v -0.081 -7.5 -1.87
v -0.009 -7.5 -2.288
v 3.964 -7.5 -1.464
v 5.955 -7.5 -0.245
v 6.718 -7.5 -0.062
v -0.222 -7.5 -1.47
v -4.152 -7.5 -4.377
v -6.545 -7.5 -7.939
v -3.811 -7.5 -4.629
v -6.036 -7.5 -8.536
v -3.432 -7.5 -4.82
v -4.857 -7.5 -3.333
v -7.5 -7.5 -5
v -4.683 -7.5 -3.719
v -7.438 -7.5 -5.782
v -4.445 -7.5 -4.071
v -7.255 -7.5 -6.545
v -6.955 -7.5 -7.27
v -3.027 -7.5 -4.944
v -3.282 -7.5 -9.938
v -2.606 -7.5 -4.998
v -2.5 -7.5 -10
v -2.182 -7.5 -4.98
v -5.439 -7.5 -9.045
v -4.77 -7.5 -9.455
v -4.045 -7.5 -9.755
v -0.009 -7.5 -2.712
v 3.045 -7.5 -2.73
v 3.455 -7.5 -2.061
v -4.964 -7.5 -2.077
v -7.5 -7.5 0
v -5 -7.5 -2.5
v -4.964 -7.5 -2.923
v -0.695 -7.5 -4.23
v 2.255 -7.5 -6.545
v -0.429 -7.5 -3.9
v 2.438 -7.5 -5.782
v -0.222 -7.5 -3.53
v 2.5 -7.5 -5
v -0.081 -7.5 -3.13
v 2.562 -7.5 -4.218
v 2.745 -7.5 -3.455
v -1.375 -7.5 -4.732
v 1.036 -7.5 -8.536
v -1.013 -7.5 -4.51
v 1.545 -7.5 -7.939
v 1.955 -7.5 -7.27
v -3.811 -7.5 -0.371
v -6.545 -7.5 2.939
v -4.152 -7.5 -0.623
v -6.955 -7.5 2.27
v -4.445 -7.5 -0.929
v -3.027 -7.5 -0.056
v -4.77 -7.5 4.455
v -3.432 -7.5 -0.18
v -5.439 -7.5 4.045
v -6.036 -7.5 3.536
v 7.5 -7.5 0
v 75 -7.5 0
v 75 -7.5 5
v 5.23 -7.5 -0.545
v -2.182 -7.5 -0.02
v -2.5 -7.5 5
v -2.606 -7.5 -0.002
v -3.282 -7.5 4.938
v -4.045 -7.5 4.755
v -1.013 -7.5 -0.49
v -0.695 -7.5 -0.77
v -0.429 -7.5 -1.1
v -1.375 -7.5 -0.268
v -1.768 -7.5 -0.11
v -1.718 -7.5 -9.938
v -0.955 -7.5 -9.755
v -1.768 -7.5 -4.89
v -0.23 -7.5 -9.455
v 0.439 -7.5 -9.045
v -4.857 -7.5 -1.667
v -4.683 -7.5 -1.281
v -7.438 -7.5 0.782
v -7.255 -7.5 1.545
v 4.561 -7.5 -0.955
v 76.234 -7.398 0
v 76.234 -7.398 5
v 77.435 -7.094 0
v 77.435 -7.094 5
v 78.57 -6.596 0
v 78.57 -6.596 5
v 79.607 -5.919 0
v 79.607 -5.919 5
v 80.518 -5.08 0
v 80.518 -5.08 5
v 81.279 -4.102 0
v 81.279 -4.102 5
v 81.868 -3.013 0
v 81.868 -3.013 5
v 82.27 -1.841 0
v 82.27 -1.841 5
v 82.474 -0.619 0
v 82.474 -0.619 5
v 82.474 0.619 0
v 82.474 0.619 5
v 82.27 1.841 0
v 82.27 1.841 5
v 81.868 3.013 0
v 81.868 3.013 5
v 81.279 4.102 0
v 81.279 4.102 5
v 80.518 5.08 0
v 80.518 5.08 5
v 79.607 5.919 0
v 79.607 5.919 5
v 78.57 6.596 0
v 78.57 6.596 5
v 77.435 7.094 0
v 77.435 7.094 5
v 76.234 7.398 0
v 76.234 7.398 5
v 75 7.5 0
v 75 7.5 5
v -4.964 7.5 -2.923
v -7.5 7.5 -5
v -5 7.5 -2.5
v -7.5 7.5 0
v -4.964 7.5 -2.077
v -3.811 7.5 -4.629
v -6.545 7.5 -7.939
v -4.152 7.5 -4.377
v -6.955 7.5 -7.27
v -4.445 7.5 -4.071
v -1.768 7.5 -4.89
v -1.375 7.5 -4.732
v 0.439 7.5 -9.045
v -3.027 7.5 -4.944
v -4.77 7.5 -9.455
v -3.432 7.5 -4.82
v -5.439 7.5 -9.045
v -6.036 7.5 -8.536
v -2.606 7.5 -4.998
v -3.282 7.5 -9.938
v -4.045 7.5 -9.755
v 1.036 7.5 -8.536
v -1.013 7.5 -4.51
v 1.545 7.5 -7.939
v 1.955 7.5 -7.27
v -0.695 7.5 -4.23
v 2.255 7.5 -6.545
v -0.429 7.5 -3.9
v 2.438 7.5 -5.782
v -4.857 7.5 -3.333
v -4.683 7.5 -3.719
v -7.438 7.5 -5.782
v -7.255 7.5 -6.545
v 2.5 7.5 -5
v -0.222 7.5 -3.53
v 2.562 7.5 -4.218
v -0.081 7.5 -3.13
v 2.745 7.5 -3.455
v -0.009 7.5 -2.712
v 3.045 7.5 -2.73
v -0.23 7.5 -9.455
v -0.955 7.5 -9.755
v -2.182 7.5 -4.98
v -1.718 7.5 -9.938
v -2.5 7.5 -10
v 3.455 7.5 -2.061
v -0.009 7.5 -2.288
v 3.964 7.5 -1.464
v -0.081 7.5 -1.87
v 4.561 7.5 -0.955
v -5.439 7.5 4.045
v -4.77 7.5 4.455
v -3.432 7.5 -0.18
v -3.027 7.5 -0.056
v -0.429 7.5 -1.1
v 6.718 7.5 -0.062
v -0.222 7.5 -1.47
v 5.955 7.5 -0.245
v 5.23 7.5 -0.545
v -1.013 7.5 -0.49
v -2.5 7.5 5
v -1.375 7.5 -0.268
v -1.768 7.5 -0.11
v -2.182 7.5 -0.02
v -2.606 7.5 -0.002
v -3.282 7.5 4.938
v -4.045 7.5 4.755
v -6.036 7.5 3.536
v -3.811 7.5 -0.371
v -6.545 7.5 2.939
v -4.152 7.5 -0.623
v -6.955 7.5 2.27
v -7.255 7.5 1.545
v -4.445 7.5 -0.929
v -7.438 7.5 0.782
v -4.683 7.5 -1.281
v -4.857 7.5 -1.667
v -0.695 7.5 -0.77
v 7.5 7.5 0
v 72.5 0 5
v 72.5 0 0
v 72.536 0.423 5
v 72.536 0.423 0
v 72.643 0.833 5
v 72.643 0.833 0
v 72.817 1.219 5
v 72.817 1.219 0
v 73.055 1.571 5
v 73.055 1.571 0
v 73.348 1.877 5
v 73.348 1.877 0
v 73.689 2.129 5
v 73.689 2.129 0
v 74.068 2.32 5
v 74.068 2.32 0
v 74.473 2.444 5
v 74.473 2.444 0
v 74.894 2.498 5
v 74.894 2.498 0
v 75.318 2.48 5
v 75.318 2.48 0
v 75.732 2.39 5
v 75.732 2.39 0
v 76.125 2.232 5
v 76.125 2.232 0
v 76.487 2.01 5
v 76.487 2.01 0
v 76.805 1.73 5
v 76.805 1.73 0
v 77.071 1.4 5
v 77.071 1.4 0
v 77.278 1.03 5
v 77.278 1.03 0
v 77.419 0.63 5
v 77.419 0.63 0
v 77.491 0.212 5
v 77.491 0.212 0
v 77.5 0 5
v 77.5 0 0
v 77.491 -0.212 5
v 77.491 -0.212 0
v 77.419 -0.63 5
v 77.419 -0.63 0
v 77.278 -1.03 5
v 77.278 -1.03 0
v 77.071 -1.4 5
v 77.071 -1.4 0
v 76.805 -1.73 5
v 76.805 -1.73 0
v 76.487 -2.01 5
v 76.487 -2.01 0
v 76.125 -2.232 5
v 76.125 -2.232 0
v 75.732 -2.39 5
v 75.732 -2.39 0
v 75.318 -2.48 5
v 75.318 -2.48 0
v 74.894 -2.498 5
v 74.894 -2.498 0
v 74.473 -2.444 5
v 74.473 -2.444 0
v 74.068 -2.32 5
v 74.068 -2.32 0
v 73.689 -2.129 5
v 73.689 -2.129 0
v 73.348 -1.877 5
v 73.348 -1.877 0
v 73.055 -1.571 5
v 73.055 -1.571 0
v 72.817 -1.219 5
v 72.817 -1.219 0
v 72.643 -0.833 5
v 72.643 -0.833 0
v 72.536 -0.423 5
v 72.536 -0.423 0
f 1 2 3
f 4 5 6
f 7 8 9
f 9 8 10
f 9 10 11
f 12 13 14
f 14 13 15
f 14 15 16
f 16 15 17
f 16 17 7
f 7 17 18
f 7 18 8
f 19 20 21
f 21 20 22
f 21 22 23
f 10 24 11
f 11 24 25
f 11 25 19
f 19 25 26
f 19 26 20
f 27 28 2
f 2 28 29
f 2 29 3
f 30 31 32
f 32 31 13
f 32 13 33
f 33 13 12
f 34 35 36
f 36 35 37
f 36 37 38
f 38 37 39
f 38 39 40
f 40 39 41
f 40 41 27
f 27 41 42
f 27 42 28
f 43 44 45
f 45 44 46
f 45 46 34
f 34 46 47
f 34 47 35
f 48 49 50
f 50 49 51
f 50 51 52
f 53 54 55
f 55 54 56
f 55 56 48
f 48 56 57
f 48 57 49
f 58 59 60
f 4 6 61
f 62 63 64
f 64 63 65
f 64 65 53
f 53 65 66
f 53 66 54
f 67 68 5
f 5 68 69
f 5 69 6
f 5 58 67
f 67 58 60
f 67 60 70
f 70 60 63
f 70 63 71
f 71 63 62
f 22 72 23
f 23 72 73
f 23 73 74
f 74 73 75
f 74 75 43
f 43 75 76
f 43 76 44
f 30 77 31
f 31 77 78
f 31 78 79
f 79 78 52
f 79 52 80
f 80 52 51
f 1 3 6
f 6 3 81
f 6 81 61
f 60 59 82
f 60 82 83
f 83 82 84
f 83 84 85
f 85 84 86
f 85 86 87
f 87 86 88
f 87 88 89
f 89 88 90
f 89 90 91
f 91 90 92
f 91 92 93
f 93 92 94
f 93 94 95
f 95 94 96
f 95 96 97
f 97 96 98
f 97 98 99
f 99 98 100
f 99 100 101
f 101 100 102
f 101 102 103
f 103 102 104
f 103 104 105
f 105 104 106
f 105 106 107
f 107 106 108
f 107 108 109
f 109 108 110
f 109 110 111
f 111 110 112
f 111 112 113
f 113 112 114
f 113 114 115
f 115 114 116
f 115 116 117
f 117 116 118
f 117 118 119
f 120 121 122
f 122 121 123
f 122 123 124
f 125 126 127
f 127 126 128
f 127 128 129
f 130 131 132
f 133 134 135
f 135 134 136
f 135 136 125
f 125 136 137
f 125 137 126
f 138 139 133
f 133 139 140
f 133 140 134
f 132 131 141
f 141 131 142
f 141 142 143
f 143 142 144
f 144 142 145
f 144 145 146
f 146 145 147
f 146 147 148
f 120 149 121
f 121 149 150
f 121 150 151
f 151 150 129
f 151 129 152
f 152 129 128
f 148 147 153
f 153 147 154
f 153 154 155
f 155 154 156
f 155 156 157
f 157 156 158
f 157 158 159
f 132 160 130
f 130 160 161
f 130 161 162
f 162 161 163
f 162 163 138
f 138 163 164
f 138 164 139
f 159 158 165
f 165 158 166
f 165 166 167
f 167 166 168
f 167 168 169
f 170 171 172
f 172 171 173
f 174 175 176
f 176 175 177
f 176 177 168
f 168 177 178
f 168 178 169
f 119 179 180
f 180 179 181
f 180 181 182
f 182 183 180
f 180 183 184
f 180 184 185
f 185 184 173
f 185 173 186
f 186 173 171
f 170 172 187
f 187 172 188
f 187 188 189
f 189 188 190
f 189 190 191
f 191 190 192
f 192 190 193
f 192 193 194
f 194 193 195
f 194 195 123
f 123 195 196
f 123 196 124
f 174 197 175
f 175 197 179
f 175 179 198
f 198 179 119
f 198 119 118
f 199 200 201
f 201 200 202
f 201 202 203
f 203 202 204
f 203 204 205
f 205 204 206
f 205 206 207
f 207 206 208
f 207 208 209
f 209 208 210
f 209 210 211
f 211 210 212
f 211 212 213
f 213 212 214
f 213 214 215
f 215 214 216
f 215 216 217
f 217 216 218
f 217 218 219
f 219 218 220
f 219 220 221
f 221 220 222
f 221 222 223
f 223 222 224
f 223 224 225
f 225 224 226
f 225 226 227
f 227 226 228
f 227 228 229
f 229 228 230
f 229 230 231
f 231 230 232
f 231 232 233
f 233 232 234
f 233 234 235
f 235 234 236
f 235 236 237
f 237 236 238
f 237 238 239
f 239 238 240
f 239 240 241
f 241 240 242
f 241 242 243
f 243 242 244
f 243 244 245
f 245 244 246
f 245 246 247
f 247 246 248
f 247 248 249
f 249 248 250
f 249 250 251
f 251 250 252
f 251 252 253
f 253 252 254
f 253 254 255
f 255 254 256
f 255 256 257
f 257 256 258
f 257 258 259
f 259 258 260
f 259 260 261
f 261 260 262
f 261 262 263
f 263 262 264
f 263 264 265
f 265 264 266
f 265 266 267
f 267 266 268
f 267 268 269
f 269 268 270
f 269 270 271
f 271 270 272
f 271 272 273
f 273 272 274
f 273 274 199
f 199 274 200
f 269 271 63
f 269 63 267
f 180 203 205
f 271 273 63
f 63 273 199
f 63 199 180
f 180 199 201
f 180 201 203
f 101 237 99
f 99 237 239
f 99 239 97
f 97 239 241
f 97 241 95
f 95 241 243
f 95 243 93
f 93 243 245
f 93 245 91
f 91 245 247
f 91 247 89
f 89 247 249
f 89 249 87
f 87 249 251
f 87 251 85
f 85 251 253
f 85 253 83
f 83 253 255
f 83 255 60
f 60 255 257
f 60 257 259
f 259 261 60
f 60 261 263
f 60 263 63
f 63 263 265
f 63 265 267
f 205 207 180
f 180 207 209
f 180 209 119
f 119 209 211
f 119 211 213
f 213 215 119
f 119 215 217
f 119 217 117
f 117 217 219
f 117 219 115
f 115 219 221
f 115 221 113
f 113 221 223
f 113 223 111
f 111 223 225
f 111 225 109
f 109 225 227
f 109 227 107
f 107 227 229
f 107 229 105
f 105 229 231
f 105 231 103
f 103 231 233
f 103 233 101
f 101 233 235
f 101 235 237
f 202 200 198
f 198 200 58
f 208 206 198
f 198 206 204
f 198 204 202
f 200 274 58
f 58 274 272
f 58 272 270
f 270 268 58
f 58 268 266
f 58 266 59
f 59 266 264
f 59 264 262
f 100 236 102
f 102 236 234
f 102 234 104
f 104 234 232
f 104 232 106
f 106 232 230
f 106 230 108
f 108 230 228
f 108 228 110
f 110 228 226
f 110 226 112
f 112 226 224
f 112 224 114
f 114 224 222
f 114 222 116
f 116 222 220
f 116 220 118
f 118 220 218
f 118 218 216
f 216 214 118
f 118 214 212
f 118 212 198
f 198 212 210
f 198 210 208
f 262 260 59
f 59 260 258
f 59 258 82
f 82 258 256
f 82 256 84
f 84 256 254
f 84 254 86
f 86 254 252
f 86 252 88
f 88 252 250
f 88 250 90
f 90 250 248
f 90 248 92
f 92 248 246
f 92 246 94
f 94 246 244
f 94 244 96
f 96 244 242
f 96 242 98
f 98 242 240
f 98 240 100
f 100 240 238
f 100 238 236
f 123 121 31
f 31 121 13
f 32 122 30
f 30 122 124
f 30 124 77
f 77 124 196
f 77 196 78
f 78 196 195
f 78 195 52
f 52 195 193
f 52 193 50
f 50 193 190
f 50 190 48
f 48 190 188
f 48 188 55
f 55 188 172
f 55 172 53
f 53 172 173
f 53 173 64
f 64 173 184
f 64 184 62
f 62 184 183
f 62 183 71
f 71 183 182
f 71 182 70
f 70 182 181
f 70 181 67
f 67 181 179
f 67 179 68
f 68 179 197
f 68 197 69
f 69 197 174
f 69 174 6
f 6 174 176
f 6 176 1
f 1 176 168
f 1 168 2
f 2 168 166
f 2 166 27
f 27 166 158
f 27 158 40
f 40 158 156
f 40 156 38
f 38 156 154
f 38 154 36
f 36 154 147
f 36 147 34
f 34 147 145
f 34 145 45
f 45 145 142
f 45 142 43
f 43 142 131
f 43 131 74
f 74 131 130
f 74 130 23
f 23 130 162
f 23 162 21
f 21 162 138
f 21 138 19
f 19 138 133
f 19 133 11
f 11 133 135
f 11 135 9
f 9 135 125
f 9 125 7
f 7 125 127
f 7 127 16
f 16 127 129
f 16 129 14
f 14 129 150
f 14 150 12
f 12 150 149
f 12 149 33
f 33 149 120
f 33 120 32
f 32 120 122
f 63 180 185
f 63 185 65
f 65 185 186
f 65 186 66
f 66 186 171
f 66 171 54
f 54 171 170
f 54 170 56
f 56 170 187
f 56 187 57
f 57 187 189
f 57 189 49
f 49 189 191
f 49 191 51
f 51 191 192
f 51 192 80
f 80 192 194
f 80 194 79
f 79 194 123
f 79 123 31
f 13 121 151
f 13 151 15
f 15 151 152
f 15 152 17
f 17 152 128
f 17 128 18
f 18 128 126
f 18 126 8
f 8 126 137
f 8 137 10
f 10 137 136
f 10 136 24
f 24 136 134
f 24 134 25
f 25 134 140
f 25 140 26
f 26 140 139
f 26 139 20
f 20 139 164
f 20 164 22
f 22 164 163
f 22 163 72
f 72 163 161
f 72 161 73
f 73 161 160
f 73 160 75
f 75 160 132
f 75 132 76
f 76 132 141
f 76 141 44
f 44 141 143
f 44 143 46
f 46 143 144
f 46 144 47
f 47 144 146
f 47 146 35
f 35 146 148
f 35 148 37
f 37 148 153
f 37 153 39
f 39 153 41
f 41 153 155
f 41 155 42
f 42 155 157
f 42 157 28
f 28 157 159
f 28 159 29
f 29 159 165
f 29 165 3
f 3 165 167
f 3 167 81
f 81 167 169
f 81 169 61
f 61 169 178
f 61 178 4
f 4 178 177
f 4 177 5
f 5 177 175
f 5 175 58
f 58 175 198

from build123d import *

# Parameters (mm, degrees)
SKETCH1_R           = 7.5
SKETCH1_R_2         = 2.5
BOSS_EXTRUDE1_DEPTH = 5
SKETCH3_W           = 10
SKETCH3_H           = 15
BOSS_EXTRUDE2_DEPTH = 15
SKETCH4_R           = 2.5
CUT_EXTRUDE1_DEPTH  = 15
FILLET1_R           = 5


with BuildPart() as part:
    # Sketch1 → Boss-Extrude1 (new body)
    # profile 1 of 3: a face of its own
    with BuildSketch(Plane.XY):
        Circle(SKETCH1_R)
        Circle(SKETCH1_R_2, mode=Mode.SUBTRACT)
    # profile 2 of 3: a face of its own
    with BuildSketch(Plane.XY):
        with BuildLine():
            Line((75, 7.5), (0, 7.5))
            ThreePointArc((0, 7.5), (5.303300859, 5.303300859), (7.5, 0))
            ThreePointArc((7.5, 0), (5.303300859, -5.303300859), (0, -7.5))
            Line((0, -7.5), (75, -7.5))
            ThreePointArc((75, -7.5), (67.5, 0), (75, 7.5))
        make_face()
    # profile 3 of 3: a face of its own
    with BuildSketch(Plane.XY):
        with Locations((75, 0)):
            Circle(SKETCH1_R)
        with Locations((75, 0)):
            Circle(SKETCH1_R_2, mode=Mode.SUBTRACT)
    extrude(amount=BOSS_EXTRUDE1_DEPTH)

    # Sketch3 → Boss-Extrude2 (add)
    with BuildSketch(Plane(origin=(0, 7.5, 0), x_dir=(1, 0, 0), z_dir=(0, 1, 0))):
        with Locations((-2.5, 2.5)):
            Rectangle(SKETCH3_W, SKETCH3_H)
    extrude(amount=-BOSS_EXTRUDE2_DEPTH)

    # Sketch4 → Cut-Extrude1 (cut)
    with BuildSketch(Plane(origin=(0, 7.5, 0), x_dir=(1, 0, 0), z_dir=(0, 1, 0))):
        with Locations(Location((-2.5, 2.5, 0), (0, 0, 180))):
            Circle(SKETCH4_R)
    extrude(amount=-CUT_EXTRUDE1_DEPTH, mode=Mode.SUBTRACT)

    # Fillet1
    fillet1_edges = [part.edges().sort_by_distance(p)[0] for p in [
        (-7.5, -3.75, 5),
        (2.5, 0, 0),
        (2.5, 0, -10),
        (-7.5, 0, -10),
    ]]
    fillet(fillet1_edges, radius=FILLET1_R - 0.0001)  # a hair under: the kernel refuses the full size


solid = part.part
